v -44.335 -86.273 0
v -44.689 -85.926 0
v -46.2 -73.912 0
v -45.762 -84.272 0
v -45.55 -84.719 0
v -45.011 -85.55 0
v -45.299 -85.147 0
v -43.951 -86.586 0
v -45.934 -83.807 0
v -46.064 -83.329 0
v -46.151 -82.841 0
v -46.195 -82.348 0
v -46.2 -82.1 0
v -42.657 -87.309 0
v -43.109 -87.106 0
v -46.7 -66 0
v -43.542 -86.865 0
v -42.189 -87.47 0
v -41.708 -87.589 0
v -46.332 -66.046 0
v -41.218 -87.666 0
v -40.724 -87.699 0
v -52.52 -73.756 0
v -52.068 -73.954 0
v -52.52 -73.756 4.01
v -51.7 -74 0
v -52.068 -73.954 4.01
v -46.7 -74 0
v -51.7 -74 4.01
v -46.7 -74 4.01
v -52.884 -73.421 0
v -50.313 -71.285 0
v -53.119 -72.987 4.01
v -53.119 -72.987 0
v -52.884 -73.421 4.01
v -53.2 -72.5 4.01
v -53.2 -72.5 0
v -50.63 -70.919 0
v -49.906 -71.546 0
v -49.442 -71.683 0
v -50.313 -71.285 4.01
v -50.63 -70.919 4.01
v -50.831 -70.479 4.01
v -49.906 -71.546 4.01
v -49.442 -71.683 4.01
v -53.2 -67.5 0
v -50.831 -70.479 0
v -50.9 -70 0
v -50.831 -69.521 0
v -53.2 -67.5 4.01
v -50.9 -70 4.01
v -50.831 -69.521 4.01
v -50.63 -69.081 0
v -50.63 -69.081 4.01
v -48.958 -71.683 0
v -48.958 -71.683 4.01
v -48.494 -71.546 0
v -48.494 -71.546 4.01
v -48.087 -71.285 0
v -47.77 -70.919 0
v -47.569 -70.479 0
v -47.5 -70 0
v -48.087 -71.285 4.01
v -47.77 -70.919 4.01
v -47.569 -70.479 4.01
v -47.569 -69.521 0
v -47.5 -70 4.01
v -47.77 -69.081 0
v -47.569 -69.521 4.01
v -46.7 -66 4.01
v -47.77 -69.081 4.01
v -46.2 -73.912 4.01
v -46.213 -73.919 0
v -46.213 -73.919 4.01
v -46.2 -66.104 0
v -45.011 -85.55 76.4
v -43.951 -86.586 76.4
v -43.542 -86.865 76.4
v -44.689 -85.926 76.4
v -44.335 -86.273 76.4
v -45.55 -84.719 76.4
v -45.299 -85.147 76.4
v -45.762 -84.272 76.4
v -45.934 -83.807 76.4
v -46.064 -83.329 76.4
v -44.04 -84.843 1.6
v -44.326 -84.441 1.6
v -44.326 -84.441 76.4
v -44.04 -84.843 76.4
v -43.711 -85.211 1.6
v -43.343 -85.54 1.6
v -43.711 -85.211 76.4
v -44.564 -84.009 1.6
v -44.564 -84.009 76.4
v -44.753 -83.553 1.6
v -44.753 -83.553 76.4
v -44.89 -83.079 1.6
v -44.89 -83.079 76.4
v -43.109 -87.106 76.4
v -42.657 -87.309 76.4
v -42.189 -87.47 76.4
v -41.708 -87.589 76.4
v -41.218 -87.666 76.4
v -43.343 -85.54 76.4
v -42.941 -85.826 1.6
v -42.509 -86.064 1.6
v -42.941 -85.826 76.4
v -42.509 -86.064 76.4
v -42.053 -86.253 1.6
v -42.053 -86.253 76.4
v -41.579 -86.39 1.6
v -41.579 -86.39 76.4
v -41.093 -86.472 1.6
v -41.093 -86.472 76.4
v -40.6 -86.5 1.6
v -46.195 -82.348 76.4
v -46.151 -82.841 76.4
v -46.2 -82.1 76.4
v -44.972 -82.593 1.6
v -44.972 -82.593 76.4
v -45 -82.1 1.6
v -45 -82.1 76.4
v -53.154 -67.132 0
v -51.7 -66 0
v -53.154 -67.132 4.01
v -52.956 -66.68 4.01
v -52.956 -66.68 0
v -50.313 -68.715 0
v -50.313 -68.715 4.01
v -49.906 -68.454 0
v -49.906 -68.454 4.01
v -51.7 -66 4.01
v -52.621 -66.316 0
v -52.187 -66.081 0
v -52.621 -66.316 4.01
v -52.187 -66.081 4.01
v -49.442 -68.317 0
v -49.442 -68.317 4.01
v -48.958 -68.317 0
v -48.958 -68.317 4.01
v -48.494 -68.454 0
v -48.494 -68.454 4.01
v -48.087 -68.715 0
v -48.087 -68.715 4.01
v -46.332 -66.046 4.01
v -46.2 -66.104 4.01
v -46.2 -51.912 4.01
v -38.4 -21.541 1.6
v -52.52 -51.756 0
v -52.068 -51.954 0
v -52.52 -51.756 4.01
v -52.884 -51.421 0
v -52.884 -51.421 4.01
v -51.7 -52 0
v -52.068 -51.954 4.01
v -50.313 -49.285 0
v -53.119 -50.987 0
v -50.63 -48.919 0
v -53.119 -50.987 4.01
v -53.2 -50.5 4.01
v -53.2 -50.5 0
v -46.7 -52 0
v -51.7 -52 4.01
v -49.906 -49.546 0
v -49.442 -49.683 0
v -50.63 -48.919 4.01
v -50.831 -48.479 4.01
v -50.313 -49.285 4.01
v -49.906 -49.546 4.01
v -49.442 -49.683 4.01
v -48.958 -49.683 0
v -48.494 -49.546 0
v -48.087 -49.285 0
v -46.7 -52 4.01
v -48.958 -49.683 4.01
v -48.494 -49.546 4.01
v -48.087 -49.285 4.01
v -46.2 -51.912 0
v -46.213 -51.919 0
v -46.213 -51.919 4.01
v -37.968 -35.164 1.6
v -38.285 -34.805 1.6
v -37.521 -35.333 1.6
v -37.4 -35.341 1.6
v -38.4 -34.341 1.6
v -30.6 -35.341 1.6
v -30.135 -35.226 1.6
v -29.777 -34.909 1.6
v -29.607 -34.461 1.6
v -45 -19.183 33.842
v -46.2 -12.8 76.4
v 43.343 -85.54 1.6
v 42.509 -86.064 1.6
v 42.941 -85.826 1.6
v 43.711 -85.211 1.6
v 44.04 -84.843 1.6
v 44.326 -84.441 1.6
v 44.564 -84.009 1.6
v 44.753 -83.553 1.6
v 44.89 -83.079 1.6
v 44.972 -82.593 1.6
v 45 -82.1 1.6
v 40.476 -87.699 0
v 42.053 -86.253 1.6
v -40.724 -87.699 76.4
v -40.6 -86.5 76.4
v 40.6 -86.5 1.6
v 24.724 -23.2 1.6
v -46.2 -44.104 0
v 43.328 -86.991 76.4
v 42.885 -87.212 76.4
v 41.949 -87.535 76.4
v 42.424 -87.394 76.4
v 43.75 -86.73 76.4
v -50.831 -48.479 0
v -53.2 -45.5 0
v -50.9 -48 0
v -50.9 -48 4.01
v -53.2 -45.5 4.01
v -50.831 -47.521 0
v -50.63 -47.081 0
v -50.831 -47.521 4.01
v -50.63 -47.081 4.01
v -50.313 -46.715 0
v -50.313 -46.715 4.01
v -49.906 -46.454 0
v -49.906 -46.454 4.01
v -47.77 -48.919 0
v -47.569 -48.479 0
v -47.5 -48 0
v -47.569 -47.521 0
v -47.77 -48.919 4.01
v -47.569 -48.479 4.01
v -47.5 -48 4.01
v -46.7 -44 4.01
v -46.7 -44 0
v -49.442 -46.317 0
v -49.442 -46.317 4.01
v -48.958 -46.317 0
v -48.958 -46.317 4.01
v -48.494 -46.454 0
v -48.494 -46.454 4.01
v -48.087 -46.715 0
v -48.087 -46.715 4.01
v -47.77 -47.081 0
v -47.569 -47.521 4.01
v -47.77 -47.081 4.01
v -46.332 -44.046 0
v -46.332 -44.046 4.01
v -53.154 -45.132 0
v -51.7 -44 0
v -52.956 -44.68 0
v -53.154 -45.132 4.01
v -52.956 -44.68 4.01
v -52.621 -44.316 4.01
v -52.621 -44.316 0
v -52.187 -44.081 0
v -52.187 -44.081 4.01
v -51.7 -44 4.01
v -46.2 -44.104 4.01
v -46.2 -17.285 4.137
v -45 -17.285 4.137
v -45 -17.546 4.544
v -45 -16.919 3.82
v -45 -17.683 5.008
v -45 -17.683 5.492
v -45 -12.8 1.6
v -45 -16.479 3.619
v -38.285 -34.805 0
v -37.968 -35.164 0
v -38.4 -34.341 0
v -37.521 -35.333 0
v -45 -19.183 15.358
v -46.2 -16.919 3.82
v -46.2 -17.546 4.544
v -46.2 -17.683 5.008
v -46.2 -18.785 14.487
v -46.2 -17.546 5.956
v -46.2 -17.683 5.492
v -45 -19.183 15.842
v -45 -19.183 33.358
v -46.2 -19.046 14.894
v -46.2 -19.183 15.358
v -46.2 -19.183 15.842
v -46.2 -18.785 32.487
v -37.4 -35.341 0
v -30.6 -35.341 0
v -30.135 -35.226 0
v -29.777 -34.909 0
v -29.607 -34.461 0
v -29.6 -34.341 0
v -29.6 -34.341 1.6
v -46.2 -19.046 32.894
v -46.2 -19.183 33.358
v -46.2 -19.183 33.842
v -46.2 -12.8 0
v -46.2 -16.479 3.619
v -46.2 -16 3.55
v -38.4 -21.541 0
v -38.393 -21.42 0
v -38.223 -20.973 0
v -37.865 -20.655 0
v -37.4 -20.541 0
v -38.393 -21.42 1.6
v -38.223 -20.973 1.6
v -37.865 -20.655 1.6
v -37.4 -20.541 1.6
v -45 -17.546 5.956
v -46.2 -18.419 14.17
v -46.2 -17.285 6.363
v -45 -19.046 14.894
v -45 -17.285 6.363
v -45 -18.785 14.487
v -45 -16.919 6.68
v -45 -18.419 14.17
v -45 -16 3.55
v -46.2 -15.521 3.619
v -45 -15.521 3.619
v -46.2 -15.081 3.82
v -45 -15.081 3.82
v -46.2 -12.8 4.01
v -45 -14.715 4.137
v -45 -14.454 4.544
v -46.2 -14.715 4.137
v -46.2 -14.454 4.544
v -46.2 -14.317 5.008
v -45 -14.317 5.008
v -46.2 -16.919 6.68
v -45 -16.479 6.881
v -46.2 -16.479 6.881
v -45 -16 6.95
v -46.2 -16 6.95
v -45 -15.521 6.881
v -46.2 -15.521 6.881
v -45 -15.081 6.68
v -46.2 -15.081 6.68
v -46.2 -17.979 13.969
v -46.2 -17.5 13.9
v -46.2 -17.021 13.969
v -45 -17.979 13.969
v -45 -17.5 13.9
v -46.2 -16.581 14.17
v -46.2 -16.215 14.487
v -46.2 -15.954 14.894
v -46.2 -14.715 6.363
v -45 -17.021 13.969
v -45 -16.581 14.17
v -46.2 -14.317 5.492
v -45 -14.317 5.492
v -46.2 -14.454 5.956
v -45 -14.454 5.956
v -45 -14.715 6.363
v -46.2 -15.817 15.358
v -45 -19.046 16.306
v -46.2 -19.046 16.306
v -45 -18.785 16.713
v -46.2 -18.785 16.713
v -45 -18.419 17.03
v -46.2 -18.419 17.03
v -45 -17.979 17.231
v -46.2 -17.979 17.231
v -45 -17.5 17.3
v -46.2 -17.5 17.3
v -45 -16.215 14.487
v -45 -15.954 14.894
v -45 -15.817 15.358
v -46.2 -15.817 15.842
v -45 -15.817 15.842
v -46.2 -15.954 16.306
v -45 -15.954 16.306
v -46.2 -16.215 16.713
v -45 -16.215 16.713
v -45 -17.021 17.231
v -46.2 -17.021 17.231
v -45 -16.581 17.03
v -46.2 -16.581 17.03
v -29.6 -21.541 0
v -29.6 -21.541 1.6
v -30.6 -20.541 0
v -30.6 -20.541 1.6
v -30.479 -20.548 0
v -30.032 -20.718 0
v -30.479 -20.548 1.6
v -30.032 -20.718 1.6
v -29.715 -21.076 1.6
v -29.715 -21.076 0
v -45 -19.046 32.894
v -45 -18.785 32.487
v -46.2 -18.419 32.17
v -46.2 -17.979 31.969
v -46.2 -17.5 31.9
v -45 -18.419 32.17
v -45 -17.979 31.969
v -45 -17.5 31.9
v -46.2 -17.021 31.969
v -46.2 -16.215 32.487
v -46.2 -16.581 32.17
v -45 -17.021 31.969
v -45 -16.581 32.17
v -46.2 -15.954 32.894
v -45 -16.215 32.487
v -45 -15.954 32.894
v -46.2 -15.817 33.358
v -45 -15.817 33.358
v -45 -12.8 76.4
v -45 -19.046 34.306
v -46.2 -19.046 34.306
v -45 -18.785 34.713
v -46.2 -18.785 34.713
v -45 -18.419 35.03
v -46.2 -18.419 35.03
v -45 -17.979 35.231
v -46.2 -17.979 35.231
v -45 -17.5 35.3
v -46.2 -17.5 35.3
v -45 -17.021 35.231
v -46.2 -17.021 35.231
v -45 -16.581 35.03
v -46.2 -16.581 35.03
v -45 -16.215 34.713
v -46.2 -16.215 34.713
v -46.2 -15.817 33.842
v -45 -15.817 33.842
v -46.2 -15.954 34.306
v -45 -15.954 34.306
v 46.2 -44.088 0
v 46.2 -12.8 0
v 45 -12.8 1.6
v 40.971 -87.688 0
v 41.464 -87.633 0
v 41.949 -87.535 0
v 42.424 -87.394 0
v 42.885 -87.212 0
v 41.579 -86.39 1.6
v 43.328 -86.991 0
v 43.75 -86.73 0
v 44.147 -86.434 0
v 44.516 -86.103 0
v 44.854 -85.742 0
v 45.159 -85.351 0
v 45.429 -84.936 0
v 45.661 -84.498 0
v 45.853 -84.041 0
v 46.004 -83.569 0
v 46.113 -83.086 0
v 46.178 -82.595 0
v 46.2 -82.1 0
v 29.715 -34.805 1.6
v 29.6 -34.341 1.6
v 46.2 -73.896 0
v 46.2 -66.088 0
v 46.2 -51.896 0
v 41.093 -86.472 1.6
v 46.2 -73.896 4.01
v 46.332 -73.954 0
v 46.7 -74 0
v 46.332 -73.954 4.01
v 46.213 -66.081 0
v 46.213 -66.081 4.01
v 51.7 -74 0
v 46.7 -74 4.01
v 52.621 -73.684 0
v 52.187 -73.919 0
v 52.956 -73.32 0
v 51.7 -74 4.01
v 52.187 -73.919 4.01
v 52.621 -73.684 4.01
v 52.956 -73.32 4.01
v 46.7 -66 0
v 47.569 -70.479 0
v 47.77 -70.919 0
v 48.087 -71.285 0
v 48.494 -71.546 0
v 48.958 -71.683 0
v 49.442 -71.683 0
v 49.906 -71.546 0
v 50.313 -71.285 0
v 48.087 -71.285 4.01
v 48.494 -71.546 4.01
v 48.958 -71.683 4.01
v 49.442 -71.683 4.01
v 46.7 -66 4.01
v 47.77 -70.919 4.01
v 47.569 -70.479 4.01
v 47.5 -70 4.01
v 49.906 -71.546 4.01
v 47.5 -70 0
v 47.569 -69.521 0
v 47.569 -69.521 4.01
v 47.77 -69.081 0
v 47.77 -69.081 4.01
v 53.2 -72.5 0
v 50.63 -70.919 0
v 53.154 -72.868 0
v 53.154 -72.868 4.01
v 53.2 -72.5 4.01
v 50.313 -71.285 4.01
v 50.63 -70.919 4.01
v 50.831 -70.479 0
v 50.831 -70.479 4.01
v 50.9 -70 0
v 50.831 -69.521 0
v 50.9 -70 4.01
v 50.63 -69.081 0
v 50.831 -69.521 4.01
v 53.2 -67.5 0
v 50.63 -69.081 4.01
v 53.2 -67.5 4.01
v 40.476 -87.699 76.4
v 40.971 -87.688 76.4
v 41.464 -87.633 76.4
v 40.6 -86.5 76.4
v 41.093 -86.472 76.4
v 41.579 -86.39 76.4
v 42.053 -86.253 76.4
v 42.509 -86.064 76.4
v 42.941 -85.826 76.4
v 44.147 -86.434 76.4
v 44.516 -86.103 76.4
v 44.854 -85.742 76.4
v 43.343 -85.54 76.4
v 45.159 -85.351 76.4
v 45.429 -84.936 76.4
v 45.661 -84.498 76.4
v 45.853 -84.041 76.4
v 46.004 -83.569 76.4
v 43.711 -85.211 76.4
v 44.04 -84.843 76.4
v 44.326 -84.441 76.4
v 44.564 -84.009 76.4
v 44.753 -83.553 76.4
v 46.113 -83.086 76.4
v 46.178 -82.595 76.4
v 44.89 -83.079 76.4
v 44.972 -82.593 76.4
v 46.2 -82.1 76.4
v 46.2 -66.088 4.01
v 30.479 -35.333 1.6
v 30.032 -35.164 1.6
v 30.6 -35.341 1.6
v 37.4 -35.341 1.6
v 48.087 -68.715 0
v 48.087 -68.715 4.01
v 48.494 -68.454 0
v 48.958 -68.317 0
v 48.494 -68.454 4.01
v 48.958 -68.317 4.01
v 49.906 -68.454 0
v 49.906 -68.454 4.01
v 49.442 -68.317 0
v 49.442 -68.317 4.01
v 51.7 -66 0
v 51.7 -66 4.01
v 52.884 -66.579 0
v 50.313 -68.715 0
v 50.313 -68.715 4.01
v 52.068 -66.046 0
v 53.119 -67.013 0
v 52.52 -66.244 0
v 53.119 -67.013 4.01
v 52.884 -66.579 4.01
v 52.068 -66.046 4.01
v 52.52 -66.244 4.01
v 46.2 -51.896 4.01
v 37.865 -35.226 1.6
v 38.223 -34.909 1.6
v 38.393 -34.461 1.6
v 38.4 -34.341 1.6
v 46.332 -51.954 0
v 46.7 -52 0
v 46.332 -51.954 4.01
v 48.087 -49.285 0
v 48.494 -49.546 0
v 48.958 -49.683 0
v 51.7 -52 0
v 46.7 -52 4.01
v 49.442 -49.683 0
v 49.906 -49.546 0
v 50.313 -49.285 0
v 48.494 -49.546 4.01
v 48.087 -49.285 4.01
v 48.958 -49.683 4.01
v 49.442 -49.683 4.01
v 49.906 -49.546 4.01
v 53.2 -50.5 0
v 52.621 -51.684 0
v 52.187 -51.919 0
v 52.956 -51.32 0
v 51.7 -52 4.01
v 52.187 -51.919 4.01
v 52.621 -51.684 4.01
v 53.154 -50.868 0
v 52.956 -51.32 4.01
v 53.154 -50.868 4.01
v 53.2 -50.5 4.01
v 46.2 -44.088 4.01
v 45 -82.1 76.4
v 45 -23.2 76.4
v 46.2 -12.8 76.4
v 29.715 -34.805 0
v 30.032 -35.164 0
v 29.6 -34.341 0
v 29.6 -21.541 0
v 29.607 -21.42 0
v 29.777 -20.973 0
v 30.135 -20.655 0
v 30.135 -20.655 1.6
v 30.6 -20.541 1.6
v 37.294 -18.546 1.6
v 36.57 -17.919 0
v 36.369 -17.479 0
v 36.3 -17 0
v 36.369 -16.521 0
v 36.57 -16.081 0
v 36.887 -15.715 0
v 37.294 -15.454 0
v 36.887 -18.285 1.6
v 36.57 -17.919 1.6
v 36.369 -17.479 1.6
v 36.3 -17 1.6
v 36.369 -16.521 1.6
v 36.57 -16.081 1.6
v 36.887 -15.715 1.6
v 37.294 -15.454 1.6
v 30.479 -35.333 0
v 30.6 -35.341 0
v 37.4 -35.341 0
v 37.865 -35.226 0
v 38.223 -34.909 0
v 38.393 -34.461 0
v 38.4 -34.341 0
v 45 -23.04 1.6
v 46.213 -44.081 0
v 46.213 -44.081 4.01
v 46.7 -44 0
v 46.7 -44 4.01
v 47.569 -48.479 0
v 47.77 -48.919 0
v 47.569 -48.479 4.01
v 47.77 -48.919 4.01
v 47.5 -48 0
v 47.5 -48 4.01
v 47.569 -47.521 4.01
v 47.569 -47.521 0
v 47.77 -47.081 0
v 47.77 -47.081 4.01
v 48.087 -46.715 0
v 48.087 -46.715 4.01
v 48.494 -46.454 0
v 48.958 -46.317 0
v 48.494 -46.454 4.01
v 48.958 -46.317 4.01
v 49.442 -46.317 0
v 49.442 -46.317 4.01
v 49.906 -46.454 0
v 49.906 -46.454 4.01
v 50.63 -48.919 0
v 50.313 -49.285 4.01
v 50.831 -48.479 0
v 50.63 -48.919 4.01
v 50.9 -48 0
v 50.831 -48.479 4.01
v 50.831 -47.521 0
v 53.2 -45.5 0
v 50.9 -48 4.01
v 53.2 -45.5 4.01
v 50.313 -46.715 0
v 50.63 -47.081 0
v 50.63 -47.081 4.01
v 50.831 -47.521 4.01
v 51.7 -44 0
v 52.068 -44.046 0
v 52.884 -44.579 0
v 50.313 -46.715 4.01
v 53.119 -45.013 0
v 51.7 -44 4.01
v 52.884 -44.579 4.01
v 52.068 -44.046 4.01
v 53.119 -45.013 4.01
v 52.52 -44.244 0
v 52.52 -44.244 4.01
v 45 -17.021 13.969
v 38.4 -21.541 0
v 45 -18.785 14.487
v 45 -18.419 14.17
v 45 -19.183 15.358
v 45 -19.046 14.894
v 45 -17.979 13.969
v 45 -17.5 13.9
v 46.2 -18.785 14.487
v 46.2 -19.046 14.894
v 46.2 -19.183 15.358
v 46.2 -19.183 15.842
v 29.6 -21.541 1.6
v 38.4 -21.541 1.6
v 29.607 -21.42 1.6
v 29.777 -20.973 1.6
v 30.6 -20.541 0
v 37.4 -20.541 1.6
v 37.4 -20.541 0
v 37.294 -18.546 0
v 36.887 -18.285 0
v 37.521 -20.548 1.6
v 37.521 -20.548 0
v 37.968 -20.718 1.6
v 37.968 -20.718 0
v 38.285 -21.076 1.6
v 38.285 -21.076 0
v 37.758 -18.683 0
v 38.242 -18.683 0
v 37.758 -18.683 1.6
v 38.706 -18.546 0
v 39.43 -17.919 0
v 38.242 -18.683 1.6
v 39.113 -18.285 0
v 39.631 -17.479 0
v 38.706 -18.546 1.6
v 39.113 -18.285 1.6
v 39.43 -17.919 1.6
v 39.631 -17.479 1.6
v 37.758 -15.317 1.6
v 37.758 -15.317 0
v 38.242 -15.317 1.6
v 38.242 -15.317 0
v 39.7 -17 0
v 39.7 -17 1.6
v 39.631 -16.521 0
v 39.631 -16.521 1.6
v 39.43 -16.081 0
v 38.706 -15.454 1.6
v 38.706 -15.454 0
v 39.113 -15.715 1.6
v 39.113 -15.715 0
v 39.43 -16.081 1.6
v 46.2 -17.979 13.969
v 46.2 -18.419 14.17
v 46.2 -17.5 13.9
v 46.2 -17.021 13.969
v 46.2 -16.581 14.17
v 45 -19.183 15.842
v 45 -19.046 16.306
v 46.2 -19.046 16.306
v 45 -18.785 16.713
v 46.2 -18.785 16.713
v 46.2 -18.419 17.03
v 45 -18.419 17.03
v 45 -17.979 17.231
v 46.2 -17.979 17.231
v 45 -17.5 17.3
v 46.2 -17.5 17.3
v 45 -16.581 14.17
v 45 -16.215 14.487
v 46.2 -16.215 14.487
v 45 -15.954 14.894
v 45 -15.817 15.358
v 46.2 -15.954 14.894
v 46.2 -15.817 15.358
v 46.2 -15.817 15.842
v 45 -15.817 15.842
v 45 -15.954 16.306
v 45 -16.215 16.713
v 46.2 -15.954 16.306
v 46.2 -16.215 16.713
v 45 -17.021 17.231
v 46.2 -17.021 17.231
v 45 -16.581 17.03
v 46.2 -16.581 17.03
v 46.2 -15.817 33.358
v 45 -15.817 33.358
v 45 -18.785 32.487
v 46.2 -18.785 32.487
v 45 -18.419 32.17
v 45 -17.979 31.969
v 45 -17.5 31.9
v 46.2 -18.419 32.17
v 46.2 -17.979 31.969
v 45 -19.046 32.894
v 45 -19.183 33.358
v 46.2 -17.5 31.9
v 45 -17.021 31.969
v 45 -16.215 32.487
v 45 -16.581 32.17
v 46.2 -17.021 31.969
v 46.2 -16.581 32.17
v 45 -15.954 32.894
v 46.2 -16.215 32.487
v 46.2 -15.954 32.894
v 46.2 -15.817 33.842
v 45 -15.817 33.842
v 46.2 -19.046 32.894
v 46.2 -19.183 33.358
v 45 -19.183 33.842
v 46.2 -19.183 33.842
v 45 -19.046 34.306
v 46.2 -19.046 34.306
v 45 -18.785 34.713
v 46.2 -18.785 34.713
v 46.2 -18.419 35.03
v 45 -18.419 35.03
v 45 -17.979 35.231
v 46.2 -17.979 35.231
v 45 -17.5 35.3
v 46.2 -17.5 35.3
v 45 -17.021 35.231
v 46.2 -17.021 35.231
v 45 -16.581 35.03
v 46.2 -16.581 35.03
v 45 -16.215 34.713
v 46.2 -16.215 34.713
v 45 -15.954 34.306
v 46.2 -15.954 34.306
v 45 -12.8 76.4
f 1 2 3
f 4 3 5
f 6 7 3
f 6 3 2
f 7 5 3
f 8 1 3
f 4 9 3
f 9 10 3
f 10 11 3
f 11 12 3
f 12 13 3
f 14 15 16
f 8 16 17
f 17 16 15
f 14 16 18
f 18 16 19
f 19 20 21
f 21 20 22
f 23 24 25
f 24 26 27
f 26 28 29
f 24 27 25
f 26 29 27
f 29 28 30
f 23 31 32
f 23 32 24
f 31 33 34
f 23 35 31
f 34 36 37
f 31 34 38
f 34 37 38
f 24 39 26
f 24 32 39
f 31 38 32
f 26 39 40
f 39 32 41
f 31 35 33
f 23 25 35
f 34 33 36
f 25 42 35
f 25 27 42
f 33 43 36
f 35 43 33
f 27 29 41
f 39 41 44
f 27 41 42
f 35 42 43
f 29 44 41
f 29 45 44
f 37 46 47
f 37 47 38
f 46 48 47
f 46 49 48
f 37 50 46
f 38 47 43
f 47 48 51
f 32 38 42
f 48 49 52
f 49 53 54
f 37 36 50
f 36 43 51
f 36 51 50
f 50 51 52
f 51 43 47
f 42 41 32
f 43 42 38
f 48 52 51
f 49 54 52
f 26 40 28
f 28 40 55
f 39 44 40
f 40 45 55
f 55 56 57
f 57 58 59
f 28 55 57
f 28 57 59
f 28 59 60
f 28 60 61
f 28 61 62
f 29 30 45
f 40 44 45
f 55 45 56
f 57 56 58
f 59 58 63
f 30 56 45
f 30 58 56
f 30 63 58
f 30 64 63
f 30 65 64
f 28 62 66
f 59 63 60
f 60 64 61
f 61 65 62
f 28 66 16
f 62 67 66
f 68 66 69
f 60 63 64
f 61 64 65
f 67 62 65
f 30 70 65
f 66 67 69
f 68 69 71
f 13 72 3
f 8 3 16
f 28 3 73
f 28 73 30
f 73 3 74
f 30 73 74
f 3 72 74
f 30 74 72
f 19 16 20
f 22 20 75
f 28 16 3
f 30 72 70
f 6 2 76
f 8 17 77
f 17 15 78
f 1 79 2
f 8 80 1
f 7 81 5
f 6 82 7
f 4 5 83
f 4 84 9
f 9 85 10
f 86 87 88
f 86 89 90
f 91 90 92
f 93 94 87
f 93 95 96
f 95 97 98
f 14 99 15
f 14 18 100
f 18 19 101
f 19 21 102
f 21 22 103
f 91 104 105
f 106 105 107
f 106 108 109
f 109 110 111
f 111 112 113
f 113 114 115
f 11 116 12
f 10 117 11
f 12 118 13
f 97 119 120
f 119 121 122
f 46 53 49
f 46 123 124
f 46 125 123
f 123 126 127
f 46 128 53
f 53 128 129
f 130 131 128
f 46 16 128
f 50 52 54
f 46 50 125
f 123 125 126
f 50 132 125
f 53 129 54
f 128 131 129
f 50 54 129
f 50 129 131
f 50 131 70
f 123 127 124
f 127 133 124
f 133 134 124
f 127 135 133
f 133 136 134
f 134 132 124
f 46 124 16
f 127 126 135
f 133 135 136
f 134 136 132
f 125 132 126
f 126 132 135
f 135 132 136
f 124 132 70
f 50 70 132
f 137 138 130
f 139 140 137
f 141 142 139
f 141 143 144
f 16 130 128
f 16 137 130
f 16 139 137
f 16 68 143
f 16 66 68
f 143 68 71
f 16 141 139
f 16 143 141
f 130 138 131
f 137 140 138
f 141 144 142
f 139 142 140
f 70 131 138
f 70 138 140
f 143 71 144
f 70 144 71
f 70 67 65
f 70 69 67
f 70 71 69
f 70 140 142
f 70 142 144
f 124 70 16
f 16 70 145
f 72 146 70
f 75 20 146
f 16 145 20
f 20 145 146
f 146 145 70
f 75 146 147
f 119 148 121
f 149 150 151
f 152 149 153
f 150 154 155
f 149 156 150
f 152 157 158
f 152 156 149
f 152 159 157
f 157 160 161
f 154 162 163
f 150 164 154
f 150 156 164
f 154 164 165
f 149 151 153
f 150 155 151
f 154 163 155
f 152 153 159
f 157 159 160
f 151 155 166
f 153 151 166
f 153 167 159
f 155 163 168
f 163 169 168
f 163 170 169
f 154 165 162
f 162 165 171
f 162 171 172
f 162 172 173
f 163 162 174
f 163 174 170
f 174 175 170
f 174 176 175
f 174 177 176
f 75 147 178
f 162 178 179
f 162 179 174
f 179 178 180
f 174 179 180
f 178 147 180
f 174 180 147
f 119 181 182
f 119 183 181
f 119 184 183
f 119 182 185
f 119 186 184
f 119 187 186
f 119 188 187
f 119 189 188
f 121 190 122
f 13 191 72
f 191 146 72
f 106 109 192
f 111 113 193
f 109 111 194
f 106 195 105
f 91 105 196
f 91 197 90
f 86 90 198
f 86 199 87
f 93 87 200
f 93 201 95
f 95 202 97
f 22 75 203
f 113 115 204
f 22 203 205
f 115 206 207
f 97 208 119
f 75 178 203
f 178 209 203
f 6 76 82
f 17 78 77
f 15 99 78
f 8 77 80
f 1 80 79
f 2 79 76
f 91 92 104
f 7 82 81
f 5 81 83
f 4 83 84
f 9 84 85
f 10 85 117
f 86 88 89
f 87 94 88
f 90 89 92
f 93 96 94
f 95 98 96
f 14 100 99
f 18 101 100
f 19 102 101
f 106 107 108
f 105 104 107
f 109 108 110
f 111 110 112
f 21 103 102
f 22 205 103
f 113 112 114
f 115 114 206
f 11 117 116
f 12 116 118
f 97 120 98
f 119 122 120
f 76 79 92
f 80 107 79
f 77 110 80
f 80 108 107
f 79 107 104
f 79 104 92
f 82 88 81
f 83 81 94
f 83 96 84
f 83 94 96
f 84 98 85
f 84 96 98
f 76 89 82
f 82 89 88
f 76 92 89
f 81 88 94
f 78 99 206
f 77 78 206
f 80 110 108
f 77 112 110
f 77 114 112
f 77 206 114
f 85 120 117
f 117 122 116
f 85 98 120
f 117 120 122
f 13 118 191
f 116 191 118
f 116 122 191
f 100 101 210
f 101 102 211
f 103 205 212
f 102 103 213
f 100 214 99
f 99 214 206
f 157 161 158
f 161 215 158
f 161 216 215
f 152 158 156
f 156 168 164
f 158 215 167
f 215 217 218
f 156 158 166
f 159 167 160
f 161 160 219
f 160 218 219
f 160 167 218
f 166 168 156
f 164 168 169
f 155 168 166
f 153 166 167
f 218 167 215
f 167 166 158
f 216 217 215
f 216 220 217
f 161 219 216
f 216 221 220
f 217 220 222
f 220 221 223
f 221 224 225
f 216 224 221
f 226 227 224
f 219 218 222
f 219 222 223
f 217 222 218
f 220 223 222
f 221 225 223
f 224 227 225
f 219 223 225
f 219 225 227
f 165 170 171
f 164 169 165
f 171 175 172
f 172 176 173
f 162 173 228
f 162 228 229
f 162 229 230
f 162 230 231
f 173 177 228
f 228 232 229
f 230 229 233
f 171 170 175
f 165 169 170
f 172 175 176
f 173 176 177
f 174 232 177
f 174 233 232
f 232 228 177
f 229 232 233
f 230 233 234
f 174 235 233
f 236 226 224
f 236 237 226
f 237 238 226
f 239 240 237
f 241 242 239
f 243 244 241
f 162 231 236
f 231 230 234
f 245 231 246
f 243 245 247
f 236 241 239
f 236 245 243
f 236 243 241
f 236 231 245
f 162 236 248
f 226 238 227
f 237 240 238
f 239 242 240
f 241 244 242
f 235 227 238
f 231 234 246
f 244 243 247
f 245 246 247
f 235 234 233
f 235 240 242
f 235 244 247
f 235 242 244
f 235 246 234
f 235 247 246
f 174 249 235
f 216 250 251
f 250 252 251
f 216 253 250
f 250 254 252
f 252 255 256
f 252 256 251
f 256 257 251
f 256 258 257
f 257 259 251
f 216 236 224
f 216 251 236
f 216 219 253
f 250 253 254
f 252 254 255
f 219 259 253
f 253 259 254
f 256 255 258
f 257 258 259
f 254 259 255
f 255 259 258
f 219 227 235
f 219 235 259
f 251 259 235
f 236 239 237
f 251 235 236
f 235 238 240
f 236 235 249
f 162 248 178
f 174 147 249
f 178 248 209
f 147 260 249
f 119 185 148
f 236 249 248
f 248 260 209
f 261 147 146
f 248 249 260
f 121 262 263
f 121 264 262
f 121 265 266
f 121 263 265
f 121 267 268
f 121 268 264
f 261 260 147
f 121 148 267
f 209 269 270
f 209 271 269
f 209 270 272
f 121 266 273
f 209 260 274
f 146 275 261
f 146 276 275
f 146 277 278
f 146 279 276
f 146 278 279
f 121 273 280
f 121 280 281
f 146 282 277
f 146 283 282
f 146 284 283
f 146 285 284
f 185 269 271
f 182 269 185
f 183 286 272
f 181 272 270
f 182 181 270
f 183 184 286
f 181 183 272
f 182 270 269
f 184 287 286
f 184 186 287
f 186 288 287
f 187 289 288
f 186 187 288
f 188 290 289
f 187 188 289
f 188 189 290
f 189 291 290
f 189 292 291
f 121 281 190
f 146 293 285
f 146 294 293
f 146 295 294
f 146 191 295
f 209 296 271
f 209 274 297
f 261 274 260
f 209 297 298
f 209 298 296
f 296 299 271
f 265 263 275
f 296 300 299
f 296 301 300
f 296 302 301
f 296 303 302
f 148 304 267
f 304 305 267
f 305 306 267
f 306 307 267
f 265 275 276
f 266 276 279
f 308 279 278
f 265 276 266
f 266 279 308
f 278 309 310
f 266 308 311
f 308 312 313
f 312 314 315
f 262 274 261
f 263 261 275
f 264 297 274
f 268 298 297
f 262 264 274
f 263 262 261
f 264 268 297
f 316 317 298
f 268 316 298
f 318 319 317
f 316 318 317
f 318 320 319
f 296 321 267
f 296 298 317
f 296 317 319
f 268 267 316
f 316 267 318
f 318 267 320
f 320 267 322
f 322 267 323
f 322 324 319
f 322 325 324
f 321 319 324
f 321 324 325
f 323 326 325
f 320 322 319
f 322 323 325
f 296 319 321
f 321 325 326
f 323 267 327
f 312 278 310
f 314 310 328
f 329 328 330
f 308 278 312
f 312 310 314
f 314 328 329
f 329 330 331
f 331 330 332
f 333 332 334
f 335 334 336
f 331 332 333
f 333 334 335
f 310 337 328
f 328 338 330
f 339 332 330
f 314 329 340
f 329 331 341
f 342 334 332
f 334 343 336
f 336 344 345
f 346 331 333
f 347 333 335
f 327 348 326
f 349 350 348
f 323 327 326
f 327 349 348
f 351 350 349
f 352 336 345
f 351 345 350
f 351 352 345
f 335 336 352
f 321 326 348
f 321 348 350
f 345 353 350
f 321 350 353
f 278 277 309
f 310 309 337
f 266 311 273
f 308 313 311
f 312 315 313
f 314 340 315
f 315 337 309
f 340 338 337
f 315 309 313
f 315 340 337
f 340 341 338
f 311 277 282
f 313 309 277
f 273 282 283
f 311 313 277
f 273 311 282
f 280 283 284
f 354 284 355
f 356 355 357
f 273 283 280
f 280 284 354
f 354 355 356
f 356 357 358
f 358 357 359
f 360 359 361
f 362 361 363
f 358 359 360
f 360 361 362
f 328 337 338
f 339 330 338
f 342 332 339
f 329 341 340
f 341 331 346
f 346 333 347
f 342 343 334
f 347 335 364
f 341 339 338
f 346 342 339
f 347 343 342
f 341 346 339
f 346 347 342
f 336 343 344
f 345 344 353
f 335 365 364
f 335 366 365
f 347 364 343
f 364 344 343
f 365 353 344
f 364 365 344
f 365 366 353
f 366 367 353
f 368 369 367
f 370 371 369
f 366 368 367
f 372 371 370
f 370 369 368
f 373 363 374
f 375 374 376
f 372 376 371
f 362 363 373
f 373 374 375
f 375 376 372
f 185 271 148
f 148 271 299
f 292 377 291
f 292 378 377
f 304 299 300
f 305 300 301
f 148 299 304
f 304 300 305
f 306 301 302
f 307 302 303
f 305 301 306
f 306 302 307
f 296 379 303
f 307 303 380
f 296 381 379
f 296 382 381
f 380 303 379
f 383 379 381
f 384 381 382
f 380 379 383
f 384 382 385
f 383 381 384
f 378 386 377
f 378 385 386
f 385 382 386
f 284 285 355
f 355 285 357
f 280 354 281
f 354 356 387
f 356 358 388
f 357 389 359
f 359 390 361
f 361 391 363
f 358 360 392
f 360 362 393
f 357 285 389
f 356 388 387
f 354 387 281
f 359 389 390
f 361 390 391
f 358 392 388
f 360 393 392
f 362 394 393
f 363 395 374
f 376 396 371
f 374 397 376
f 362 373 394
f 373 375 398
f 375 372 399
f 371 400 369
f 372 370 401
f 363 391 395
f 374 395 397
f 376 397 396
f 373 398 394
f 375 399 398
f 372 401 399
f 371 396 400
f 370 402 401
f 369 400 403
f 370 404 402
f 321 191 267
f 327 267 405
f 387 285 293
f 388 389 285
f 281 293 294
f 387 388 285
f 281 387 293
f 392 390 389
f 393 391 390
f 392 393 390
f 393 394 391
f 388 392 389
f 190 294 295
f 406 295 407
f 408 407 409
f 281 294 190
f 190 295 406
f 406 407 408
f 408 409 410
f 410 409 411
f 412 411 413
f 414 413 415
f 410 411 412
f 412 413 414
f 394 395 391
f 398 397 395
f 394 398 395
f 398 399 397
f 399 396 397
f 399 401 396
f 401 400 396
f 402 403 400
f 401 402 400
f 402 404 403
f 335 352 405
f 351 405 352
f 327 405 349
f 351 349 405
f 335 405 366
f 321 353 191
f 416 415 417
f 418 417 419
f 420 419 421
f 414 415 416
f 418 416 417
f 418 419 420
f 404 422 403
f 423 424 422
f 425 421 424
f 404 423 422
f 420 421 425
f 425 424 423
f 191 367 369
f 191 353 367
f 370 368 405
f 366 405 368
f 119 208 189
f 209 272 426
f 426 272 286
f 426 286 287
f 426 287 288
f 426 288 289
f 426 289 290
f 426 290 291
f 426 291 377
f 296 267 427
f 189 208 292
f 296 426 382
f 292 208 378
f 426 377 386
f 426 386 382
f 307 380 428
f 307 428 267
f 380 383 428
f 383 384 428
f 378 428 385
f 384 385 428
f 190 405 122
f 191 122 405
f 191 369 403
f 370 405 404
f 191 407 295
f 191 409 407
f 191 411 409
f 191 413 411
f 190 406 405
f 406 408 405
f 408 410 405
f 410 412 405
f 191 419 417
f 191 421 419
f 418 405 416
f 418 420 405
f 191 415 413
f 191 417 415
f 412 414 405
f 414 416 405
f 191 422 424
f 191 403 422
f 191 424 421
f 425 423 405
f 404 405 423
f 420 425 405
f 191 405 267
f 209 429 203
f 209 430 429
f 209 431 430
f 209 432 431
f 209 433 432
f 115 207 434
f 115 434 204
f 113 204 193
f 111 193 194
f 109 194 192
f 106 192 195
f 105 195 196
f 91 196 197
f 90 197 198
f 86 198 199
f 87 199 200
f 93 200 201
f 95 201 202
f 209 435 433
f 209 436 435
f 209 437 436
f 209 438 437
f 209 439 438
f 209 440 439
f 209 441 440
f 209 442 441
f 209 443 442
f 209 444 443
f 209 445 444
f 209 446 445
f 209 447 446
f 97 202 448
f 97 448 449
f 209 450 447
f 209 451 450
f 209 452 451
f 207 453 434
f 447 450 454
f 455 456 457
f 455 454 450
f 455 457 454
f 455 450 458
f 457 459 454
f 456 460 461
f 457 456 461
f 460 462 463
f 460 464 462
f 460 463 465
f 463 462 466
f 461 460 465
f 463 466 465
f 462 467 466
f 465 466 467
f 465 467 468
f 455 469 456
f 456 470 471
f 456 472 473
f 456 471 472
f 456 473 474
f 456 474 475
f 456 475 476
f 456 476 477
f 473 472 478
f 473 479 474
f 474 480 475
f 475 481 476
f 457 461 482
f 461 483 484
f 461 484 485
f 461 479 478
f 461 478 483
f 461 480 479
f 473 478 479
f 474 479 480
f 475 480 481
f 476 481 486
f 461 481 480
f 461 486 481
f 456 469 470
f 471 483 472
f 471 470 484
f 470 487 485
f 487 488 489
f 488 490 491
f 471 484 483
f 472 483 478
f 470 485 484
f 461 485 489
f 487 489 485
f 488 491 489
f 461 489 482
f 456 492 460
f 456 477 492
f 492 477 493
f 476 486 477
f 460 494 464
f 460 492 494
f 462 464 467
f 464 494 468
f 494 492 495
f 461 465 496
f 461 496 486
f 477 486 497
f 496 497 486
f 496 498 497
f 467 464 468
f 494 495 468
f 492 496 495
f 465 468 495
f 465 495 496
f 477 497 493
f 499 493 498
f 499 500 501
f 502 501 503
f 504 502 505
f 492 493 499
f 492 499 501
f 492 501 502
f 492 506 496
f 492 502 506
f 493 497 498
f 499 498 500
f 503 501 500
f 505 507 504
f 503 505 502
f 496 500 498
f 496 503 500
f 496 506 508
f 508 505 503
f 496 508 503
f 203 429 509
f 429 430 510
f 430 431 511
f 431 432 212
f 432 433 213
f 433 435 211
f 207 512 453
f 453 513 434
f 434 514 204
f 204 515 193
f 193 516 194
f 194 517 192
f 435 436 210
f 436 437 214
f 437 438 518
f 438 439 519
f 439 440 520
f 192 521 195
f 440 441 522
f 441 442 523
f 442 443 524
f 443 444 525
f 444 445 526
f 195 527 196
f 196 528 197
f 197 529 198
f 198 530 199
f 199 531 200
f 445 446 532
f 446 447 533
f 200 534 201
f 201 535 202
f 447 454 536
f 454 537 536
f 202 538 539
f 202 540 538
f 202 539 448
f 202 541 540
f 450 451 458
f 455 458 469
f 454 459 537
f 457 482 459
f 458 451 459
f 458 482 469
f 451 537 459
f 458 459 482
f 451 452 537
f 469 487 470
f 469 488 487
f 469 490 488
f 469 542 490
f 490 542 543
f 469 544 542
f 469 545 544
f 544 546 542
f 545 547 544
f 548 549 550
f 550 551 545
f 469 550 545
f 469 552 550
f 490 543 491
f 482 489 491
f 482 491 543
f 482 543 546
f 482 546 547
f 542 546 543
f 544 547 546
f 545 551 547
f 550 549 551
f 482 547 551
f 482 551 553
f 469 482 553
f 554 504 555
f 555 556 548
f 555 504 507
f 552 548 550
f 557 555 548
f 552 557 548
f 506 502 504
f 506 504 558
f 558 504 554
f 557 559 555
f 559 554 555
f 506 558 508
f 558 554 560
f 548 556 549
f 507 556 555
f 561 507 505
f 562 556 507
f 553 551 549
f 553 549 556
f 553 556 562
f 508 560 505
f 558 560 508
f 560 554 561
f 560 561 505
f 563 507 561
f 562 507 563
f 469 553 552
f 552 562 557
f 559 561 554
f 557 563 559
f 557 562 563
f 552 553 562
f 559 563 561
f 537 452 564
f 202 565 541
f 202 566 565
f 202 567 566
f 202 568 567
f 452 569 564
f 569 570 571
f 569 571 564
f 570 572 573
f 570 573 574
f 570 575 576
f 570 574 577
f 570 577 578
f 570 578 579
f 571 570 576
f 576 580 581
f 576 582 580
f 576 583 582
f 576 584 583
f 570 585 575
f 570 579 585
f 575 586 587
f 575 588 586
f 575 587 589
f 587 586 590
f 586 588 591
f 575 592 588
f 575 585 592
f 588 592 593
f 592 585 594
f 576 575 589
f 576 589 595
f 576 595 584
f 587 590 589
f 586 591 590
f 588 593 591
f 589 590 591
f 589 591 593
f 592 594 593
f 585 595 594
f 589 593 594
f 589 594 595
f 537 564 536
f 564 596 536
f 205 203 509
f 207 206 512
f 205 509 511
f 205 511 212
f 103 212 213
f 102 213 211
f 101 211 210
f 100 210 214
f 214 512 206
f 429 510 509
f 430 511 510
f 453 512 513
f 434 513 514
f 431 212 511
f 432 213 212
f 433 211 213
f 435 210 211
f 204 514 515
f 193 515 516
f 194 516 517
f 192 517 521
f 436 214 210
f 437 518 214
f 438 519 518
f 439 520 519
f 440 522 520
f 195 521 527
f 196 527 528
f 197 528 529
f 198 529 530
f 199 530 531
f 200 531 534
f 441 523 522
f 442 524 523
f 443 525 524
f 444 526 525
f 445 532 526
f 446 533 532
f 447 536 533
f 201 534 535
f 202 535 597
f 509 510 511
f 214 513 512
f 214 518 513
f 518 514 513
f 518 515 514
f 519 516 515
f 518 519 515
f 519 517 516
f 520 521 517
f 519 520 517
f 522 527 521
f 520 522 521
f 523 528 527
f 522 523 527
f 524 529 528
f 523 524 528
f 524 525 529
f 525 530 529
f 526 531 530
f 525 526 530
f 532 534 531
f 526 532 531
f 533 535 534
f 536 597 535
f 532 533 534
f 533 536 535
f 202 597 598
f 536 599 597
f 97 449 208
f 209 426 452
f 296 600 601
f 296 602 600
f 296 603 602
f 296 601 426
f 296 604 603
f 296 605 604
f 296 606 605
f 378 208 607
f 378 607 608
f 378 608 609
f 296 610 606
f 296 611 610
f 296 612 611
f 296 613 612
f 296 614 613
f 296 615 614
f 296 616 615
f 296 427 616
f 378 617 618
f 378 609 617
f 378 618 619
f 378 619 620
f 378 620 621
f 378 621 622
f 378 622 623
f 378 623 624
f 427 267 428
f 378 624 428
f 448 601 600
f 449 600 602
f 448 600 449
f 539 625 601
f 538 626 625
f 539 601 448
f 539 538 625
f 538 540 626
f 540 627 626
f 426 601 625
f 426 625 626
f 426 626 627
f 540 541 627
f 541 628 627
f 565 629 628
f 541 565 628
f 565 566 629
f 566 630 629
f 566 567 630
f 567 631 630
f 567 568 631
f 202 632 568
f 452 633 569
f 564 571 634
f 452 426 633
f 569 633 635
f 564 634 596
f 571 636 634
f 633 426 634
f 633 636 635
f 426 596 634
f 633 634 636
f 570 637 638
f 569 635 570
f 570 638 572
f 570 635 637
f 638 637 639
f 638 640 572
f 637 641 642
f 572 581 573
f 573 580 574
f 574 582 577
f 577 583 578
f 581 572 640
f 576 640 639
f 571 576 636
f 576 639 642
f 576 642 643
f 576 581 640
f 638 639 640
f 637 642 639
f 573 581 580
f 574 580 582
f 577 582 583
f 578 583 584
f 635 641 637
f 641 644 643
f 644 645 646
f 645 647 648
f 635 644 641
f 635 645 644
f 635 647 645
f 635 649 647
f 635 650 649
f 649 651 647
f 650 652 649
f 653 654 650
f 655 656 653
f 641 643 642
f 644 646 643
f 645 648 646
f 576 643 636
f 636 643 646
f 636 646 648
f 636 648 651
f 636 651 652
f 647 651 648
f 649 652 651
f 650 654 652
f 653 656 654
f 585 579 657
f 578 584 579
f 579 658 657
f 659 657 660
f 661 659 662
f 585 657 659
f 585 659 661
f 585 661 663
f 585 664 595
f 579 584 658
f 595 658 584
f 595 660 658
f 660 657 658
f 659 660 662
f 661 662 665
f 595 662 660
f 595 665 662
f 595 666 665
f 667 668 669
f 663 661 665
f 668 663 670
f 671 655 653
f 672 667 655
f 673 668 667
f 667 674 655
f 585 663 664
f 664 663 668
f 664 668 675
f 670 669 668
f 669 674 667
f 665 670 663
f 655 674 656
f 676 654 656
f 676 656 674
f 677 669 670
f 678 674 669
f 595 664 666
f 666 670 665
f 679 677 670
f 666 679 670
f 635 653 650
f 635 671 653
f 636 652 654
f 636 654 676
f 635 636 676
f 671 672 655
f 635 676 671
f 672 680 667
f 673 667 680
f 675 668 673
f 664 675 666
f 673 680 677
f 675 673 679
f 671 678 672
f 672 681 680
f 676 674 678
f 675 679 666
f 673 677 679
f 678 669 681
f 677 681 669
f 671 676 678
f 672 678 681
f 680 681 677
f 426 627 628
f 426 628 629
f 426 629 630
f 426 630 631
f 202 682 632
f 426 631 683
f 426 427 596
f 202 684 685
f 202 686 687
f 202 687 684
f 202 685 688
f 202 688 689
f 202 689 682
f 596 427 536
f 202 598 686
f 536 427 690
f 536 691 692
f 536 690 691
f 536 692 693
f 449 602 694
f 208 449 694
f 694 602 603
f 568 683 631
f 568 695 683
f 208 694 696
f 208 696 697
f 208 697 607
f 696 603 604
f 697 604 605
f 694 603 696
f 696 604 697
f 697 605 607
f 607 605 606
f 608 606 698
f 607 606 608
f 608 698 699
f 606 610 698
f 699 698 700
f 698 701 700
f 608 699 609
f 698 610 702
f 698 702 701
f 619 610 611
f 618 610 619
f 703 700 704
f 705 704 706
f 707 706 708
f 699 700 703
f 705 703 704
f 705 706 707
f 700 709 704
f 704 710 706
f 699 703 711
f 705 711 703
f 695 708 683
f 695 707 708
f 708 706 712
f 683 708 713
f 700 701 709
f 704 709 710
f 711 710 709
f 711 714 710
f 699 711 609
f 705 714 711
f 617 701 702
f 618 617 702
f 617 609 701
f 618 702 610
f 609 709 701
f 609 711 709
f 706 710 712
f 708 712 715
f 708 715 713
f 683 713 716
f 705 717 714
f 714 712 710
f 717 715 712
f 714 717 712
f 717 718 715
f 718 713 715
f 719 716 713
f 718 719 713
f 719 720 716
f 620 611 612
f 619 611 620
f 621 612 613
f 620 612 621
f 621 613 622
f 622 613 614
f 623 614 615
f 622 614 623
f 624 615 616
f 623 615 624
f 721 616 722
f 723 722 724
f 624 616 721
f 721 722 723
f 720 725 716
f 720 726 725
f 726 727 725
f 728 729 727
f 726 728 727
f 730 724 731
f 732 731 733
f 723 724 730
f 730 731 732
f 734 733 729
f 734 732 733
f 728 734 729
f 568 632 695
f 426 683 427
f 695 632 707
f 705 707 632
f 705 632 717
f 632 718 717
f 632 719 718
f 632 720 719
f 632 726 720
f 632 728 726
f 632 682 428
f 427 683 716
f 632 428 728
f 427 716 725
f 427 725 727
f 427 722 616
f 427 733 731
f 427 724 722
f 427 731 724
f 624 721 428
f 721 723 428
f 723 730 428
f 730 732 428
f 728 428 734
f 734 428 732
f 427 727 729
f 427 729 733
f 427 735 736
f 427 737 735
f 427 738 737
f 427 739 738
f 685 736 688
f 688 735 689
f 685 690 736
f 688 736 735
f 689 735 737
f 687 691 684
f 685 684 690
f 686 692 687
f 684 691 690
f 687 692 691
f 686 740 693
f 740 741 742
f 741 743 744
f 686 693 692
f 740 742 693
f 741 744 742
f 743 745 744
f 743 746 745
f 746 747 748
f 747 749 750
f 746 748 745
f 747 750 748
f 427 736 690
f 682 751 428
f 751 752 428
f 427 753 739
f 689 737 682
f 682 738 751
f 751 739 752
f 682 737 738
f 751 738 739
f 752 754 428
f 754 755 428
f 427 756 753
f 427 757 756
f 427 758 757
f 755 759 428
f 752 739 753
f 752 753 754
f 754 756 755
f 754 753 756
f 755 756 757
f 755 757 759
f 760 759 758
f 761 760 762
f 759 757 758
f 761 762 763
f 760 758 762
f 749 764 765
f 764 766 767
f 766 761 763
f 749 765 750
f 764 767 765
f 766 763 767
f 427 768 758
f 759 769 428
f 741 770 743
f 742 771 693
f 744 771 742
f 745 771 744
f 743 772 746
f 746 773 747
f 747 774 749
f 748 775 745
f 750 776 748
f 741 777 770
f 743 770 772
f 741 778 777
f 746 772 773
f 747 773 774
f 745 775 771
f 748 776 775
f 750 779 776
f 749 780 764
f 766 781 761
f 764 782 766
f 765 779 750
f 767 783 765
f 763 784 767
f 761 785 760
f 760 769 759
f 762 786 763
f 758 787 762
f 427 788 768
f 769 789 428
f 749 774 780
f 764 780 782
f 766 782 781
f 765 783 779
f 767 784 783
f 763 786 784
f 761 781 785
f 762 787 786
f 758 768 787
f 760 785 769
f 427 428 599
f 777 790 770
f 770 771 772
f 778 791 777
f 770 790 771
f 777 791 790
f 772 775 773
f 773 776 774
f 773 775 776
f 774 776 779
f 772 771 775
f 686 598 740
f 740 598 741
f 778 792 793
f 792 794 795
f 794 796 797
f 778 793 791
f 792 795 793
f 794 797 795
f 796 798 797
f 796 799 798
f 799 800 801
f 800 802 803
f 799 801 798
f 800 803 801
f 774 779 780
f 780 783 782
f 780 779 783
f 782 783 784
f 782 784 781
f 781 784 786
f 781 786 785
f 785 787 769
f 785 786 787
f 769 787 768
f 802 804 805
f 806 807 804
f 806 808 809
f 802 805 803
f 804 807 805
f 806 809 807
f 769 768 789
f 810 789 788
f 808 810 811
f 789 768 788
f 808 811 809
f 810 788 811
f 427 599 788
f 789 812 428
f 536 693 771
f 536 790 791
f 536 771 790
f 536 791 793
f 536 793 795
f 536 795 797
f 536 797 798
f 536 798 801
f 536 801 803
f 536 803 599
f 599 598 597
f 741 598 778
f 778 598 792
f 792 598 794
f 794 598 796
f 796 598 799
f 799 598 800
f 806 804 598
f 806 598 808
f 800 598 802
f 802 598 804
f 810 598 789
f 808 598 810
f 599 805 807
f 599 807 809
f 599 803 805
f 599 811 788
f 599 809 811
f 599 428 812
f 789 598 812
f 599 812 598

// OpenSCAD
// file: lib/lib.scad
// Shared helpers. Include AFTER params.scad (needs TOL, M3_* etc.).
$fa = 4; $fs = 0.5;

module rrect(size, r) {            // 2D rounded rectangle, centred
    r2 = min(r, min(size[0], size[1]) / 2 - 0.001);
    offset(r = r2) square([size[0] - 2 * r2, size[1] - 2 * r2], center = true);
}
module rbox(size, r, center_xy = true) {   // box with rounded vertical edges
    translate(center_xy ? [0, 0, 0] : [size[0] / 2, size[1] / 2, 0])
        linear_extrude(size[2]) rrect([size[0], size[1]], r);
}
module rbox_at(x0, x1, y0, y1, z0, z1, r = 0.01) {
    translate([(x0 + x1) / 2, (y0 + y1) / 2, z0]) rbox([x1 - x0, y1 - y0, z1 - z0], r);
}
module box_at(x0, x1, y0, y1, z0, z1) { translate([x0, y0, z0]) cube([x1 - x0, y1 - y0, z1 - z0]); }

module ring(ro, ri, h) { difference() { cylinder(r = ro, h = h); translate([0, 0, -1]) cylinder(r = ri, h = h + 2); } }
module ring_sector(ro, ri, h, a0, a1) {
    intersection() {
        ring(ro, ri, h);
        linear_extrude(h) polygon(concat([[0, 0]], [for (a = [a0 : (a1 - a0) / 24 : a1]) 2 * ro * [cos(a), sin(a)]]));
    }
}
// teardrop hole along an axis lying horizontal (axis = Y after rotation), printable w/o support
module teardrop2d(d) { union() { circle(d = d); rotate(45) square(d / 2); } }
// vertical heat-set insert hole, opening at z=0 going +z (depth l)
module insert_hole(l = M3_INSERT_L) { translate([0, 0, -EPS]) cylinder(d = M3_INSERT_D, h = l + EPS); }
module m3_clear(l) { translate([0, 0, -EPS]) cylinder(d = M3_CLEAR, h = l + 2 * EPS); }
module m3_csk(l) {  // countersunk clearance from z=0 upward, head at z=0 side
    translate([0, 0, -EPS]) { cylinder(d = M3_CLEAR, h = l + 2 * EPS); cylinder(d1 = 6.4, d2 = M3_CLEAR, h = 1.7); }
}
module card2d() { rrect([CARD_L, CARD_W], CARD_R); }
module card_at(cy, z) { translate([0, cy, z]) linear_extrude(CARD_T) card2d(); }

// ---- gears ----
function _inv(a) = tan(a) - a * PI_ / 180;           // involute function, a in deg
function _invpt(rb, r, ang0, s) = let(al = acos(rb / r), th = ang0 - s * (_inv(al) * 180 / PI_)) [r * cos(th), r * sin(th)];
module involute_gear2d(m, z, pa = 20, clearance = 0.05) {
    rp = m * z / 2; rb = rp * cos(pa); ra = rp + m - clearance; rf = rp - 1.25 * m;
    half = 90 / z + _inv(pa) * 180 / PI_;            // tooth half-angle at base (deg)
    n = 8;
    rs = [for (i = [0 : n]) max(rb, rf) + (ra - max(rb, rf)) * i / n];
    union() {
        circle(r = rf, $fn = z * 4);
        for (k = [0 : z - 1]) rotate(k * 360 / z) polygon(concat(
            [[rf * cos(-half), rf * sin(-half)]],
            [for (r = rs) let(p = _invpt(rb, r, half, 1)) [p[0], -p[1]]],
            [for (i = [n : -1 : 0]) _invpt(rb, rs[i], half, 1)],
            [[rf * cos(half), rf * sin(half)]]));
    }
}
// straight gear rack (2D in XY: teeth along +x, pointing -y, pitch line at y=0)
module gear_rack2d(m, len, back = 3) {
    p = PI_ * m; ad = m; de = 1.25 * m; t = tan(20);
    n = ceil(len / p) + 1;
    intersection() {
        union() {
            translate([0, de]) square([len, back]);
            for (i = [0 : n]) translate([i * p - p / 4, 0]) polygon([
                [-(p / 4 + de * t), de + 0.01], [p / 4 + de * t + 0.01, de + 0.01],
                [p / 4 - ad * t, -ad], [-(p / 4 - ad * t), -ad] ]);
        }
        translate([0, -ad - 1]) square([len, ad + de + back + 2]);
    }
}
// GT2 belt-tooth profile ring (teeth outward), 2D
module gt2_ring2d(n, r_land, ri) {
    union() {
        difference() { circle(r = r_land + 0.01, $fn = n * 2); circle(r = ri, $fn = n * 2); }
        for (k = [0 : n - 1]) rotate(k * 360 / n)
            translate([r_land, 0]) hull() { translate([-0.2, 0]) square([0.2, 1.0], center = true); translate([0.25, 0]) circle(r = 0.5, $fn = 12); }
    }
}
// main file
// Hopper: floor (load plane = Z_LOAD) with feed-roller windows and the load IR hole,
// walls up to the cap. Front throat closed by the separate adjustable gate.
// Print: upright, floor on bed, no supports.
include <params.scad>
include <lib/lib.scad>
module hop_outline2d(grow = 0) {   // XY outline of the card zone grown by `grow`, front squared off at HOP_Y_FRONT
    hull() {
        for (s = [-1, 1]) translate([s * (HOP_XI - HOP_CR), HOP_YI1 + HOP_CR]) circle(r = HOP_CR + grow);
        translate([-(HOP_XI + grow), HOP_YI1 + HOP_CR]) square([2 * (HOP_XI + grow), HOP_Y_FRONT - HOP_YI1 - HOP_CR]);
    }
}
module hopper_body() difference() {
    union() {
        translate([0, 0, Z_LOAD - HOP_FLOOR_T + 4]) linear_extrude(HOP_Z1 - Z_LOAD + HOP_FLOOR_T - 4) hop_outline2d(HOP_WALL);
        translate([0, 0, Z_LOAD - HOP_FLOOR_T]) linear_extrude(4 + EPS) union() { hop_outline2d(HOP_WALL); for (s = [-1, 1], y = HOP_TAB_Y) translate([s * (HOP_XO + 3), y]) rrect([8, 8], 1.5); }
    }
    translate([0, 0, Z_LOAD]) linear_extrude(200) difference() { hop_outline2d(0); translate([-50, HOP_YI0]) square([100, 20]); }
    translate([0, 0, Z_LOAD]) box_at(-HOP_XI, HOP_XI, HOP_YI0 - 1, HOP_Y_FRONT + 1, 0, 200);        // throat / gate bay
    for (s = [-1, 1]) translate([s * FEED_X, FEED_Y, Z_LOAD - 5]) rbox([FEED_W + 4 * GAP, FEED_D + 4 * GAP, 10], 1);   // roller windows
    translate([LOADIR_X, LOADIR_Y, Z_LOAD - 5]) cylinder(d = fit_free(3), h = 10);
    for (s = [-1, 1], z = [14, 32]) translate([s * HOP_XI, GATE_YC, Z_LOAD + z]) rotate([0, 90, 0]) cylinder(d = M3_CLEAR, h = 10, center = true);
    translate([-HOP_XI - HOP_WALL / 2, PINCH_Y, PINCH_Z]) rotate([0, 90, 0]) cylinder(d = fit_free(SHAFT_D), h = HOP_WALL + 2, center = true);   // pinch shaft bearing
    for (s = [-1, 1], y = HOP_TAB_Y) translate([s * (HOP_XO + 3), y, Z_LOAD - HOP_FLOOR_T]) m3_clear(5);
}
module hopper_body_print() translate([0, 0, -Z_LOAD + HOP_FLOOR_T]) hopper_body();
hopper_body_print();
